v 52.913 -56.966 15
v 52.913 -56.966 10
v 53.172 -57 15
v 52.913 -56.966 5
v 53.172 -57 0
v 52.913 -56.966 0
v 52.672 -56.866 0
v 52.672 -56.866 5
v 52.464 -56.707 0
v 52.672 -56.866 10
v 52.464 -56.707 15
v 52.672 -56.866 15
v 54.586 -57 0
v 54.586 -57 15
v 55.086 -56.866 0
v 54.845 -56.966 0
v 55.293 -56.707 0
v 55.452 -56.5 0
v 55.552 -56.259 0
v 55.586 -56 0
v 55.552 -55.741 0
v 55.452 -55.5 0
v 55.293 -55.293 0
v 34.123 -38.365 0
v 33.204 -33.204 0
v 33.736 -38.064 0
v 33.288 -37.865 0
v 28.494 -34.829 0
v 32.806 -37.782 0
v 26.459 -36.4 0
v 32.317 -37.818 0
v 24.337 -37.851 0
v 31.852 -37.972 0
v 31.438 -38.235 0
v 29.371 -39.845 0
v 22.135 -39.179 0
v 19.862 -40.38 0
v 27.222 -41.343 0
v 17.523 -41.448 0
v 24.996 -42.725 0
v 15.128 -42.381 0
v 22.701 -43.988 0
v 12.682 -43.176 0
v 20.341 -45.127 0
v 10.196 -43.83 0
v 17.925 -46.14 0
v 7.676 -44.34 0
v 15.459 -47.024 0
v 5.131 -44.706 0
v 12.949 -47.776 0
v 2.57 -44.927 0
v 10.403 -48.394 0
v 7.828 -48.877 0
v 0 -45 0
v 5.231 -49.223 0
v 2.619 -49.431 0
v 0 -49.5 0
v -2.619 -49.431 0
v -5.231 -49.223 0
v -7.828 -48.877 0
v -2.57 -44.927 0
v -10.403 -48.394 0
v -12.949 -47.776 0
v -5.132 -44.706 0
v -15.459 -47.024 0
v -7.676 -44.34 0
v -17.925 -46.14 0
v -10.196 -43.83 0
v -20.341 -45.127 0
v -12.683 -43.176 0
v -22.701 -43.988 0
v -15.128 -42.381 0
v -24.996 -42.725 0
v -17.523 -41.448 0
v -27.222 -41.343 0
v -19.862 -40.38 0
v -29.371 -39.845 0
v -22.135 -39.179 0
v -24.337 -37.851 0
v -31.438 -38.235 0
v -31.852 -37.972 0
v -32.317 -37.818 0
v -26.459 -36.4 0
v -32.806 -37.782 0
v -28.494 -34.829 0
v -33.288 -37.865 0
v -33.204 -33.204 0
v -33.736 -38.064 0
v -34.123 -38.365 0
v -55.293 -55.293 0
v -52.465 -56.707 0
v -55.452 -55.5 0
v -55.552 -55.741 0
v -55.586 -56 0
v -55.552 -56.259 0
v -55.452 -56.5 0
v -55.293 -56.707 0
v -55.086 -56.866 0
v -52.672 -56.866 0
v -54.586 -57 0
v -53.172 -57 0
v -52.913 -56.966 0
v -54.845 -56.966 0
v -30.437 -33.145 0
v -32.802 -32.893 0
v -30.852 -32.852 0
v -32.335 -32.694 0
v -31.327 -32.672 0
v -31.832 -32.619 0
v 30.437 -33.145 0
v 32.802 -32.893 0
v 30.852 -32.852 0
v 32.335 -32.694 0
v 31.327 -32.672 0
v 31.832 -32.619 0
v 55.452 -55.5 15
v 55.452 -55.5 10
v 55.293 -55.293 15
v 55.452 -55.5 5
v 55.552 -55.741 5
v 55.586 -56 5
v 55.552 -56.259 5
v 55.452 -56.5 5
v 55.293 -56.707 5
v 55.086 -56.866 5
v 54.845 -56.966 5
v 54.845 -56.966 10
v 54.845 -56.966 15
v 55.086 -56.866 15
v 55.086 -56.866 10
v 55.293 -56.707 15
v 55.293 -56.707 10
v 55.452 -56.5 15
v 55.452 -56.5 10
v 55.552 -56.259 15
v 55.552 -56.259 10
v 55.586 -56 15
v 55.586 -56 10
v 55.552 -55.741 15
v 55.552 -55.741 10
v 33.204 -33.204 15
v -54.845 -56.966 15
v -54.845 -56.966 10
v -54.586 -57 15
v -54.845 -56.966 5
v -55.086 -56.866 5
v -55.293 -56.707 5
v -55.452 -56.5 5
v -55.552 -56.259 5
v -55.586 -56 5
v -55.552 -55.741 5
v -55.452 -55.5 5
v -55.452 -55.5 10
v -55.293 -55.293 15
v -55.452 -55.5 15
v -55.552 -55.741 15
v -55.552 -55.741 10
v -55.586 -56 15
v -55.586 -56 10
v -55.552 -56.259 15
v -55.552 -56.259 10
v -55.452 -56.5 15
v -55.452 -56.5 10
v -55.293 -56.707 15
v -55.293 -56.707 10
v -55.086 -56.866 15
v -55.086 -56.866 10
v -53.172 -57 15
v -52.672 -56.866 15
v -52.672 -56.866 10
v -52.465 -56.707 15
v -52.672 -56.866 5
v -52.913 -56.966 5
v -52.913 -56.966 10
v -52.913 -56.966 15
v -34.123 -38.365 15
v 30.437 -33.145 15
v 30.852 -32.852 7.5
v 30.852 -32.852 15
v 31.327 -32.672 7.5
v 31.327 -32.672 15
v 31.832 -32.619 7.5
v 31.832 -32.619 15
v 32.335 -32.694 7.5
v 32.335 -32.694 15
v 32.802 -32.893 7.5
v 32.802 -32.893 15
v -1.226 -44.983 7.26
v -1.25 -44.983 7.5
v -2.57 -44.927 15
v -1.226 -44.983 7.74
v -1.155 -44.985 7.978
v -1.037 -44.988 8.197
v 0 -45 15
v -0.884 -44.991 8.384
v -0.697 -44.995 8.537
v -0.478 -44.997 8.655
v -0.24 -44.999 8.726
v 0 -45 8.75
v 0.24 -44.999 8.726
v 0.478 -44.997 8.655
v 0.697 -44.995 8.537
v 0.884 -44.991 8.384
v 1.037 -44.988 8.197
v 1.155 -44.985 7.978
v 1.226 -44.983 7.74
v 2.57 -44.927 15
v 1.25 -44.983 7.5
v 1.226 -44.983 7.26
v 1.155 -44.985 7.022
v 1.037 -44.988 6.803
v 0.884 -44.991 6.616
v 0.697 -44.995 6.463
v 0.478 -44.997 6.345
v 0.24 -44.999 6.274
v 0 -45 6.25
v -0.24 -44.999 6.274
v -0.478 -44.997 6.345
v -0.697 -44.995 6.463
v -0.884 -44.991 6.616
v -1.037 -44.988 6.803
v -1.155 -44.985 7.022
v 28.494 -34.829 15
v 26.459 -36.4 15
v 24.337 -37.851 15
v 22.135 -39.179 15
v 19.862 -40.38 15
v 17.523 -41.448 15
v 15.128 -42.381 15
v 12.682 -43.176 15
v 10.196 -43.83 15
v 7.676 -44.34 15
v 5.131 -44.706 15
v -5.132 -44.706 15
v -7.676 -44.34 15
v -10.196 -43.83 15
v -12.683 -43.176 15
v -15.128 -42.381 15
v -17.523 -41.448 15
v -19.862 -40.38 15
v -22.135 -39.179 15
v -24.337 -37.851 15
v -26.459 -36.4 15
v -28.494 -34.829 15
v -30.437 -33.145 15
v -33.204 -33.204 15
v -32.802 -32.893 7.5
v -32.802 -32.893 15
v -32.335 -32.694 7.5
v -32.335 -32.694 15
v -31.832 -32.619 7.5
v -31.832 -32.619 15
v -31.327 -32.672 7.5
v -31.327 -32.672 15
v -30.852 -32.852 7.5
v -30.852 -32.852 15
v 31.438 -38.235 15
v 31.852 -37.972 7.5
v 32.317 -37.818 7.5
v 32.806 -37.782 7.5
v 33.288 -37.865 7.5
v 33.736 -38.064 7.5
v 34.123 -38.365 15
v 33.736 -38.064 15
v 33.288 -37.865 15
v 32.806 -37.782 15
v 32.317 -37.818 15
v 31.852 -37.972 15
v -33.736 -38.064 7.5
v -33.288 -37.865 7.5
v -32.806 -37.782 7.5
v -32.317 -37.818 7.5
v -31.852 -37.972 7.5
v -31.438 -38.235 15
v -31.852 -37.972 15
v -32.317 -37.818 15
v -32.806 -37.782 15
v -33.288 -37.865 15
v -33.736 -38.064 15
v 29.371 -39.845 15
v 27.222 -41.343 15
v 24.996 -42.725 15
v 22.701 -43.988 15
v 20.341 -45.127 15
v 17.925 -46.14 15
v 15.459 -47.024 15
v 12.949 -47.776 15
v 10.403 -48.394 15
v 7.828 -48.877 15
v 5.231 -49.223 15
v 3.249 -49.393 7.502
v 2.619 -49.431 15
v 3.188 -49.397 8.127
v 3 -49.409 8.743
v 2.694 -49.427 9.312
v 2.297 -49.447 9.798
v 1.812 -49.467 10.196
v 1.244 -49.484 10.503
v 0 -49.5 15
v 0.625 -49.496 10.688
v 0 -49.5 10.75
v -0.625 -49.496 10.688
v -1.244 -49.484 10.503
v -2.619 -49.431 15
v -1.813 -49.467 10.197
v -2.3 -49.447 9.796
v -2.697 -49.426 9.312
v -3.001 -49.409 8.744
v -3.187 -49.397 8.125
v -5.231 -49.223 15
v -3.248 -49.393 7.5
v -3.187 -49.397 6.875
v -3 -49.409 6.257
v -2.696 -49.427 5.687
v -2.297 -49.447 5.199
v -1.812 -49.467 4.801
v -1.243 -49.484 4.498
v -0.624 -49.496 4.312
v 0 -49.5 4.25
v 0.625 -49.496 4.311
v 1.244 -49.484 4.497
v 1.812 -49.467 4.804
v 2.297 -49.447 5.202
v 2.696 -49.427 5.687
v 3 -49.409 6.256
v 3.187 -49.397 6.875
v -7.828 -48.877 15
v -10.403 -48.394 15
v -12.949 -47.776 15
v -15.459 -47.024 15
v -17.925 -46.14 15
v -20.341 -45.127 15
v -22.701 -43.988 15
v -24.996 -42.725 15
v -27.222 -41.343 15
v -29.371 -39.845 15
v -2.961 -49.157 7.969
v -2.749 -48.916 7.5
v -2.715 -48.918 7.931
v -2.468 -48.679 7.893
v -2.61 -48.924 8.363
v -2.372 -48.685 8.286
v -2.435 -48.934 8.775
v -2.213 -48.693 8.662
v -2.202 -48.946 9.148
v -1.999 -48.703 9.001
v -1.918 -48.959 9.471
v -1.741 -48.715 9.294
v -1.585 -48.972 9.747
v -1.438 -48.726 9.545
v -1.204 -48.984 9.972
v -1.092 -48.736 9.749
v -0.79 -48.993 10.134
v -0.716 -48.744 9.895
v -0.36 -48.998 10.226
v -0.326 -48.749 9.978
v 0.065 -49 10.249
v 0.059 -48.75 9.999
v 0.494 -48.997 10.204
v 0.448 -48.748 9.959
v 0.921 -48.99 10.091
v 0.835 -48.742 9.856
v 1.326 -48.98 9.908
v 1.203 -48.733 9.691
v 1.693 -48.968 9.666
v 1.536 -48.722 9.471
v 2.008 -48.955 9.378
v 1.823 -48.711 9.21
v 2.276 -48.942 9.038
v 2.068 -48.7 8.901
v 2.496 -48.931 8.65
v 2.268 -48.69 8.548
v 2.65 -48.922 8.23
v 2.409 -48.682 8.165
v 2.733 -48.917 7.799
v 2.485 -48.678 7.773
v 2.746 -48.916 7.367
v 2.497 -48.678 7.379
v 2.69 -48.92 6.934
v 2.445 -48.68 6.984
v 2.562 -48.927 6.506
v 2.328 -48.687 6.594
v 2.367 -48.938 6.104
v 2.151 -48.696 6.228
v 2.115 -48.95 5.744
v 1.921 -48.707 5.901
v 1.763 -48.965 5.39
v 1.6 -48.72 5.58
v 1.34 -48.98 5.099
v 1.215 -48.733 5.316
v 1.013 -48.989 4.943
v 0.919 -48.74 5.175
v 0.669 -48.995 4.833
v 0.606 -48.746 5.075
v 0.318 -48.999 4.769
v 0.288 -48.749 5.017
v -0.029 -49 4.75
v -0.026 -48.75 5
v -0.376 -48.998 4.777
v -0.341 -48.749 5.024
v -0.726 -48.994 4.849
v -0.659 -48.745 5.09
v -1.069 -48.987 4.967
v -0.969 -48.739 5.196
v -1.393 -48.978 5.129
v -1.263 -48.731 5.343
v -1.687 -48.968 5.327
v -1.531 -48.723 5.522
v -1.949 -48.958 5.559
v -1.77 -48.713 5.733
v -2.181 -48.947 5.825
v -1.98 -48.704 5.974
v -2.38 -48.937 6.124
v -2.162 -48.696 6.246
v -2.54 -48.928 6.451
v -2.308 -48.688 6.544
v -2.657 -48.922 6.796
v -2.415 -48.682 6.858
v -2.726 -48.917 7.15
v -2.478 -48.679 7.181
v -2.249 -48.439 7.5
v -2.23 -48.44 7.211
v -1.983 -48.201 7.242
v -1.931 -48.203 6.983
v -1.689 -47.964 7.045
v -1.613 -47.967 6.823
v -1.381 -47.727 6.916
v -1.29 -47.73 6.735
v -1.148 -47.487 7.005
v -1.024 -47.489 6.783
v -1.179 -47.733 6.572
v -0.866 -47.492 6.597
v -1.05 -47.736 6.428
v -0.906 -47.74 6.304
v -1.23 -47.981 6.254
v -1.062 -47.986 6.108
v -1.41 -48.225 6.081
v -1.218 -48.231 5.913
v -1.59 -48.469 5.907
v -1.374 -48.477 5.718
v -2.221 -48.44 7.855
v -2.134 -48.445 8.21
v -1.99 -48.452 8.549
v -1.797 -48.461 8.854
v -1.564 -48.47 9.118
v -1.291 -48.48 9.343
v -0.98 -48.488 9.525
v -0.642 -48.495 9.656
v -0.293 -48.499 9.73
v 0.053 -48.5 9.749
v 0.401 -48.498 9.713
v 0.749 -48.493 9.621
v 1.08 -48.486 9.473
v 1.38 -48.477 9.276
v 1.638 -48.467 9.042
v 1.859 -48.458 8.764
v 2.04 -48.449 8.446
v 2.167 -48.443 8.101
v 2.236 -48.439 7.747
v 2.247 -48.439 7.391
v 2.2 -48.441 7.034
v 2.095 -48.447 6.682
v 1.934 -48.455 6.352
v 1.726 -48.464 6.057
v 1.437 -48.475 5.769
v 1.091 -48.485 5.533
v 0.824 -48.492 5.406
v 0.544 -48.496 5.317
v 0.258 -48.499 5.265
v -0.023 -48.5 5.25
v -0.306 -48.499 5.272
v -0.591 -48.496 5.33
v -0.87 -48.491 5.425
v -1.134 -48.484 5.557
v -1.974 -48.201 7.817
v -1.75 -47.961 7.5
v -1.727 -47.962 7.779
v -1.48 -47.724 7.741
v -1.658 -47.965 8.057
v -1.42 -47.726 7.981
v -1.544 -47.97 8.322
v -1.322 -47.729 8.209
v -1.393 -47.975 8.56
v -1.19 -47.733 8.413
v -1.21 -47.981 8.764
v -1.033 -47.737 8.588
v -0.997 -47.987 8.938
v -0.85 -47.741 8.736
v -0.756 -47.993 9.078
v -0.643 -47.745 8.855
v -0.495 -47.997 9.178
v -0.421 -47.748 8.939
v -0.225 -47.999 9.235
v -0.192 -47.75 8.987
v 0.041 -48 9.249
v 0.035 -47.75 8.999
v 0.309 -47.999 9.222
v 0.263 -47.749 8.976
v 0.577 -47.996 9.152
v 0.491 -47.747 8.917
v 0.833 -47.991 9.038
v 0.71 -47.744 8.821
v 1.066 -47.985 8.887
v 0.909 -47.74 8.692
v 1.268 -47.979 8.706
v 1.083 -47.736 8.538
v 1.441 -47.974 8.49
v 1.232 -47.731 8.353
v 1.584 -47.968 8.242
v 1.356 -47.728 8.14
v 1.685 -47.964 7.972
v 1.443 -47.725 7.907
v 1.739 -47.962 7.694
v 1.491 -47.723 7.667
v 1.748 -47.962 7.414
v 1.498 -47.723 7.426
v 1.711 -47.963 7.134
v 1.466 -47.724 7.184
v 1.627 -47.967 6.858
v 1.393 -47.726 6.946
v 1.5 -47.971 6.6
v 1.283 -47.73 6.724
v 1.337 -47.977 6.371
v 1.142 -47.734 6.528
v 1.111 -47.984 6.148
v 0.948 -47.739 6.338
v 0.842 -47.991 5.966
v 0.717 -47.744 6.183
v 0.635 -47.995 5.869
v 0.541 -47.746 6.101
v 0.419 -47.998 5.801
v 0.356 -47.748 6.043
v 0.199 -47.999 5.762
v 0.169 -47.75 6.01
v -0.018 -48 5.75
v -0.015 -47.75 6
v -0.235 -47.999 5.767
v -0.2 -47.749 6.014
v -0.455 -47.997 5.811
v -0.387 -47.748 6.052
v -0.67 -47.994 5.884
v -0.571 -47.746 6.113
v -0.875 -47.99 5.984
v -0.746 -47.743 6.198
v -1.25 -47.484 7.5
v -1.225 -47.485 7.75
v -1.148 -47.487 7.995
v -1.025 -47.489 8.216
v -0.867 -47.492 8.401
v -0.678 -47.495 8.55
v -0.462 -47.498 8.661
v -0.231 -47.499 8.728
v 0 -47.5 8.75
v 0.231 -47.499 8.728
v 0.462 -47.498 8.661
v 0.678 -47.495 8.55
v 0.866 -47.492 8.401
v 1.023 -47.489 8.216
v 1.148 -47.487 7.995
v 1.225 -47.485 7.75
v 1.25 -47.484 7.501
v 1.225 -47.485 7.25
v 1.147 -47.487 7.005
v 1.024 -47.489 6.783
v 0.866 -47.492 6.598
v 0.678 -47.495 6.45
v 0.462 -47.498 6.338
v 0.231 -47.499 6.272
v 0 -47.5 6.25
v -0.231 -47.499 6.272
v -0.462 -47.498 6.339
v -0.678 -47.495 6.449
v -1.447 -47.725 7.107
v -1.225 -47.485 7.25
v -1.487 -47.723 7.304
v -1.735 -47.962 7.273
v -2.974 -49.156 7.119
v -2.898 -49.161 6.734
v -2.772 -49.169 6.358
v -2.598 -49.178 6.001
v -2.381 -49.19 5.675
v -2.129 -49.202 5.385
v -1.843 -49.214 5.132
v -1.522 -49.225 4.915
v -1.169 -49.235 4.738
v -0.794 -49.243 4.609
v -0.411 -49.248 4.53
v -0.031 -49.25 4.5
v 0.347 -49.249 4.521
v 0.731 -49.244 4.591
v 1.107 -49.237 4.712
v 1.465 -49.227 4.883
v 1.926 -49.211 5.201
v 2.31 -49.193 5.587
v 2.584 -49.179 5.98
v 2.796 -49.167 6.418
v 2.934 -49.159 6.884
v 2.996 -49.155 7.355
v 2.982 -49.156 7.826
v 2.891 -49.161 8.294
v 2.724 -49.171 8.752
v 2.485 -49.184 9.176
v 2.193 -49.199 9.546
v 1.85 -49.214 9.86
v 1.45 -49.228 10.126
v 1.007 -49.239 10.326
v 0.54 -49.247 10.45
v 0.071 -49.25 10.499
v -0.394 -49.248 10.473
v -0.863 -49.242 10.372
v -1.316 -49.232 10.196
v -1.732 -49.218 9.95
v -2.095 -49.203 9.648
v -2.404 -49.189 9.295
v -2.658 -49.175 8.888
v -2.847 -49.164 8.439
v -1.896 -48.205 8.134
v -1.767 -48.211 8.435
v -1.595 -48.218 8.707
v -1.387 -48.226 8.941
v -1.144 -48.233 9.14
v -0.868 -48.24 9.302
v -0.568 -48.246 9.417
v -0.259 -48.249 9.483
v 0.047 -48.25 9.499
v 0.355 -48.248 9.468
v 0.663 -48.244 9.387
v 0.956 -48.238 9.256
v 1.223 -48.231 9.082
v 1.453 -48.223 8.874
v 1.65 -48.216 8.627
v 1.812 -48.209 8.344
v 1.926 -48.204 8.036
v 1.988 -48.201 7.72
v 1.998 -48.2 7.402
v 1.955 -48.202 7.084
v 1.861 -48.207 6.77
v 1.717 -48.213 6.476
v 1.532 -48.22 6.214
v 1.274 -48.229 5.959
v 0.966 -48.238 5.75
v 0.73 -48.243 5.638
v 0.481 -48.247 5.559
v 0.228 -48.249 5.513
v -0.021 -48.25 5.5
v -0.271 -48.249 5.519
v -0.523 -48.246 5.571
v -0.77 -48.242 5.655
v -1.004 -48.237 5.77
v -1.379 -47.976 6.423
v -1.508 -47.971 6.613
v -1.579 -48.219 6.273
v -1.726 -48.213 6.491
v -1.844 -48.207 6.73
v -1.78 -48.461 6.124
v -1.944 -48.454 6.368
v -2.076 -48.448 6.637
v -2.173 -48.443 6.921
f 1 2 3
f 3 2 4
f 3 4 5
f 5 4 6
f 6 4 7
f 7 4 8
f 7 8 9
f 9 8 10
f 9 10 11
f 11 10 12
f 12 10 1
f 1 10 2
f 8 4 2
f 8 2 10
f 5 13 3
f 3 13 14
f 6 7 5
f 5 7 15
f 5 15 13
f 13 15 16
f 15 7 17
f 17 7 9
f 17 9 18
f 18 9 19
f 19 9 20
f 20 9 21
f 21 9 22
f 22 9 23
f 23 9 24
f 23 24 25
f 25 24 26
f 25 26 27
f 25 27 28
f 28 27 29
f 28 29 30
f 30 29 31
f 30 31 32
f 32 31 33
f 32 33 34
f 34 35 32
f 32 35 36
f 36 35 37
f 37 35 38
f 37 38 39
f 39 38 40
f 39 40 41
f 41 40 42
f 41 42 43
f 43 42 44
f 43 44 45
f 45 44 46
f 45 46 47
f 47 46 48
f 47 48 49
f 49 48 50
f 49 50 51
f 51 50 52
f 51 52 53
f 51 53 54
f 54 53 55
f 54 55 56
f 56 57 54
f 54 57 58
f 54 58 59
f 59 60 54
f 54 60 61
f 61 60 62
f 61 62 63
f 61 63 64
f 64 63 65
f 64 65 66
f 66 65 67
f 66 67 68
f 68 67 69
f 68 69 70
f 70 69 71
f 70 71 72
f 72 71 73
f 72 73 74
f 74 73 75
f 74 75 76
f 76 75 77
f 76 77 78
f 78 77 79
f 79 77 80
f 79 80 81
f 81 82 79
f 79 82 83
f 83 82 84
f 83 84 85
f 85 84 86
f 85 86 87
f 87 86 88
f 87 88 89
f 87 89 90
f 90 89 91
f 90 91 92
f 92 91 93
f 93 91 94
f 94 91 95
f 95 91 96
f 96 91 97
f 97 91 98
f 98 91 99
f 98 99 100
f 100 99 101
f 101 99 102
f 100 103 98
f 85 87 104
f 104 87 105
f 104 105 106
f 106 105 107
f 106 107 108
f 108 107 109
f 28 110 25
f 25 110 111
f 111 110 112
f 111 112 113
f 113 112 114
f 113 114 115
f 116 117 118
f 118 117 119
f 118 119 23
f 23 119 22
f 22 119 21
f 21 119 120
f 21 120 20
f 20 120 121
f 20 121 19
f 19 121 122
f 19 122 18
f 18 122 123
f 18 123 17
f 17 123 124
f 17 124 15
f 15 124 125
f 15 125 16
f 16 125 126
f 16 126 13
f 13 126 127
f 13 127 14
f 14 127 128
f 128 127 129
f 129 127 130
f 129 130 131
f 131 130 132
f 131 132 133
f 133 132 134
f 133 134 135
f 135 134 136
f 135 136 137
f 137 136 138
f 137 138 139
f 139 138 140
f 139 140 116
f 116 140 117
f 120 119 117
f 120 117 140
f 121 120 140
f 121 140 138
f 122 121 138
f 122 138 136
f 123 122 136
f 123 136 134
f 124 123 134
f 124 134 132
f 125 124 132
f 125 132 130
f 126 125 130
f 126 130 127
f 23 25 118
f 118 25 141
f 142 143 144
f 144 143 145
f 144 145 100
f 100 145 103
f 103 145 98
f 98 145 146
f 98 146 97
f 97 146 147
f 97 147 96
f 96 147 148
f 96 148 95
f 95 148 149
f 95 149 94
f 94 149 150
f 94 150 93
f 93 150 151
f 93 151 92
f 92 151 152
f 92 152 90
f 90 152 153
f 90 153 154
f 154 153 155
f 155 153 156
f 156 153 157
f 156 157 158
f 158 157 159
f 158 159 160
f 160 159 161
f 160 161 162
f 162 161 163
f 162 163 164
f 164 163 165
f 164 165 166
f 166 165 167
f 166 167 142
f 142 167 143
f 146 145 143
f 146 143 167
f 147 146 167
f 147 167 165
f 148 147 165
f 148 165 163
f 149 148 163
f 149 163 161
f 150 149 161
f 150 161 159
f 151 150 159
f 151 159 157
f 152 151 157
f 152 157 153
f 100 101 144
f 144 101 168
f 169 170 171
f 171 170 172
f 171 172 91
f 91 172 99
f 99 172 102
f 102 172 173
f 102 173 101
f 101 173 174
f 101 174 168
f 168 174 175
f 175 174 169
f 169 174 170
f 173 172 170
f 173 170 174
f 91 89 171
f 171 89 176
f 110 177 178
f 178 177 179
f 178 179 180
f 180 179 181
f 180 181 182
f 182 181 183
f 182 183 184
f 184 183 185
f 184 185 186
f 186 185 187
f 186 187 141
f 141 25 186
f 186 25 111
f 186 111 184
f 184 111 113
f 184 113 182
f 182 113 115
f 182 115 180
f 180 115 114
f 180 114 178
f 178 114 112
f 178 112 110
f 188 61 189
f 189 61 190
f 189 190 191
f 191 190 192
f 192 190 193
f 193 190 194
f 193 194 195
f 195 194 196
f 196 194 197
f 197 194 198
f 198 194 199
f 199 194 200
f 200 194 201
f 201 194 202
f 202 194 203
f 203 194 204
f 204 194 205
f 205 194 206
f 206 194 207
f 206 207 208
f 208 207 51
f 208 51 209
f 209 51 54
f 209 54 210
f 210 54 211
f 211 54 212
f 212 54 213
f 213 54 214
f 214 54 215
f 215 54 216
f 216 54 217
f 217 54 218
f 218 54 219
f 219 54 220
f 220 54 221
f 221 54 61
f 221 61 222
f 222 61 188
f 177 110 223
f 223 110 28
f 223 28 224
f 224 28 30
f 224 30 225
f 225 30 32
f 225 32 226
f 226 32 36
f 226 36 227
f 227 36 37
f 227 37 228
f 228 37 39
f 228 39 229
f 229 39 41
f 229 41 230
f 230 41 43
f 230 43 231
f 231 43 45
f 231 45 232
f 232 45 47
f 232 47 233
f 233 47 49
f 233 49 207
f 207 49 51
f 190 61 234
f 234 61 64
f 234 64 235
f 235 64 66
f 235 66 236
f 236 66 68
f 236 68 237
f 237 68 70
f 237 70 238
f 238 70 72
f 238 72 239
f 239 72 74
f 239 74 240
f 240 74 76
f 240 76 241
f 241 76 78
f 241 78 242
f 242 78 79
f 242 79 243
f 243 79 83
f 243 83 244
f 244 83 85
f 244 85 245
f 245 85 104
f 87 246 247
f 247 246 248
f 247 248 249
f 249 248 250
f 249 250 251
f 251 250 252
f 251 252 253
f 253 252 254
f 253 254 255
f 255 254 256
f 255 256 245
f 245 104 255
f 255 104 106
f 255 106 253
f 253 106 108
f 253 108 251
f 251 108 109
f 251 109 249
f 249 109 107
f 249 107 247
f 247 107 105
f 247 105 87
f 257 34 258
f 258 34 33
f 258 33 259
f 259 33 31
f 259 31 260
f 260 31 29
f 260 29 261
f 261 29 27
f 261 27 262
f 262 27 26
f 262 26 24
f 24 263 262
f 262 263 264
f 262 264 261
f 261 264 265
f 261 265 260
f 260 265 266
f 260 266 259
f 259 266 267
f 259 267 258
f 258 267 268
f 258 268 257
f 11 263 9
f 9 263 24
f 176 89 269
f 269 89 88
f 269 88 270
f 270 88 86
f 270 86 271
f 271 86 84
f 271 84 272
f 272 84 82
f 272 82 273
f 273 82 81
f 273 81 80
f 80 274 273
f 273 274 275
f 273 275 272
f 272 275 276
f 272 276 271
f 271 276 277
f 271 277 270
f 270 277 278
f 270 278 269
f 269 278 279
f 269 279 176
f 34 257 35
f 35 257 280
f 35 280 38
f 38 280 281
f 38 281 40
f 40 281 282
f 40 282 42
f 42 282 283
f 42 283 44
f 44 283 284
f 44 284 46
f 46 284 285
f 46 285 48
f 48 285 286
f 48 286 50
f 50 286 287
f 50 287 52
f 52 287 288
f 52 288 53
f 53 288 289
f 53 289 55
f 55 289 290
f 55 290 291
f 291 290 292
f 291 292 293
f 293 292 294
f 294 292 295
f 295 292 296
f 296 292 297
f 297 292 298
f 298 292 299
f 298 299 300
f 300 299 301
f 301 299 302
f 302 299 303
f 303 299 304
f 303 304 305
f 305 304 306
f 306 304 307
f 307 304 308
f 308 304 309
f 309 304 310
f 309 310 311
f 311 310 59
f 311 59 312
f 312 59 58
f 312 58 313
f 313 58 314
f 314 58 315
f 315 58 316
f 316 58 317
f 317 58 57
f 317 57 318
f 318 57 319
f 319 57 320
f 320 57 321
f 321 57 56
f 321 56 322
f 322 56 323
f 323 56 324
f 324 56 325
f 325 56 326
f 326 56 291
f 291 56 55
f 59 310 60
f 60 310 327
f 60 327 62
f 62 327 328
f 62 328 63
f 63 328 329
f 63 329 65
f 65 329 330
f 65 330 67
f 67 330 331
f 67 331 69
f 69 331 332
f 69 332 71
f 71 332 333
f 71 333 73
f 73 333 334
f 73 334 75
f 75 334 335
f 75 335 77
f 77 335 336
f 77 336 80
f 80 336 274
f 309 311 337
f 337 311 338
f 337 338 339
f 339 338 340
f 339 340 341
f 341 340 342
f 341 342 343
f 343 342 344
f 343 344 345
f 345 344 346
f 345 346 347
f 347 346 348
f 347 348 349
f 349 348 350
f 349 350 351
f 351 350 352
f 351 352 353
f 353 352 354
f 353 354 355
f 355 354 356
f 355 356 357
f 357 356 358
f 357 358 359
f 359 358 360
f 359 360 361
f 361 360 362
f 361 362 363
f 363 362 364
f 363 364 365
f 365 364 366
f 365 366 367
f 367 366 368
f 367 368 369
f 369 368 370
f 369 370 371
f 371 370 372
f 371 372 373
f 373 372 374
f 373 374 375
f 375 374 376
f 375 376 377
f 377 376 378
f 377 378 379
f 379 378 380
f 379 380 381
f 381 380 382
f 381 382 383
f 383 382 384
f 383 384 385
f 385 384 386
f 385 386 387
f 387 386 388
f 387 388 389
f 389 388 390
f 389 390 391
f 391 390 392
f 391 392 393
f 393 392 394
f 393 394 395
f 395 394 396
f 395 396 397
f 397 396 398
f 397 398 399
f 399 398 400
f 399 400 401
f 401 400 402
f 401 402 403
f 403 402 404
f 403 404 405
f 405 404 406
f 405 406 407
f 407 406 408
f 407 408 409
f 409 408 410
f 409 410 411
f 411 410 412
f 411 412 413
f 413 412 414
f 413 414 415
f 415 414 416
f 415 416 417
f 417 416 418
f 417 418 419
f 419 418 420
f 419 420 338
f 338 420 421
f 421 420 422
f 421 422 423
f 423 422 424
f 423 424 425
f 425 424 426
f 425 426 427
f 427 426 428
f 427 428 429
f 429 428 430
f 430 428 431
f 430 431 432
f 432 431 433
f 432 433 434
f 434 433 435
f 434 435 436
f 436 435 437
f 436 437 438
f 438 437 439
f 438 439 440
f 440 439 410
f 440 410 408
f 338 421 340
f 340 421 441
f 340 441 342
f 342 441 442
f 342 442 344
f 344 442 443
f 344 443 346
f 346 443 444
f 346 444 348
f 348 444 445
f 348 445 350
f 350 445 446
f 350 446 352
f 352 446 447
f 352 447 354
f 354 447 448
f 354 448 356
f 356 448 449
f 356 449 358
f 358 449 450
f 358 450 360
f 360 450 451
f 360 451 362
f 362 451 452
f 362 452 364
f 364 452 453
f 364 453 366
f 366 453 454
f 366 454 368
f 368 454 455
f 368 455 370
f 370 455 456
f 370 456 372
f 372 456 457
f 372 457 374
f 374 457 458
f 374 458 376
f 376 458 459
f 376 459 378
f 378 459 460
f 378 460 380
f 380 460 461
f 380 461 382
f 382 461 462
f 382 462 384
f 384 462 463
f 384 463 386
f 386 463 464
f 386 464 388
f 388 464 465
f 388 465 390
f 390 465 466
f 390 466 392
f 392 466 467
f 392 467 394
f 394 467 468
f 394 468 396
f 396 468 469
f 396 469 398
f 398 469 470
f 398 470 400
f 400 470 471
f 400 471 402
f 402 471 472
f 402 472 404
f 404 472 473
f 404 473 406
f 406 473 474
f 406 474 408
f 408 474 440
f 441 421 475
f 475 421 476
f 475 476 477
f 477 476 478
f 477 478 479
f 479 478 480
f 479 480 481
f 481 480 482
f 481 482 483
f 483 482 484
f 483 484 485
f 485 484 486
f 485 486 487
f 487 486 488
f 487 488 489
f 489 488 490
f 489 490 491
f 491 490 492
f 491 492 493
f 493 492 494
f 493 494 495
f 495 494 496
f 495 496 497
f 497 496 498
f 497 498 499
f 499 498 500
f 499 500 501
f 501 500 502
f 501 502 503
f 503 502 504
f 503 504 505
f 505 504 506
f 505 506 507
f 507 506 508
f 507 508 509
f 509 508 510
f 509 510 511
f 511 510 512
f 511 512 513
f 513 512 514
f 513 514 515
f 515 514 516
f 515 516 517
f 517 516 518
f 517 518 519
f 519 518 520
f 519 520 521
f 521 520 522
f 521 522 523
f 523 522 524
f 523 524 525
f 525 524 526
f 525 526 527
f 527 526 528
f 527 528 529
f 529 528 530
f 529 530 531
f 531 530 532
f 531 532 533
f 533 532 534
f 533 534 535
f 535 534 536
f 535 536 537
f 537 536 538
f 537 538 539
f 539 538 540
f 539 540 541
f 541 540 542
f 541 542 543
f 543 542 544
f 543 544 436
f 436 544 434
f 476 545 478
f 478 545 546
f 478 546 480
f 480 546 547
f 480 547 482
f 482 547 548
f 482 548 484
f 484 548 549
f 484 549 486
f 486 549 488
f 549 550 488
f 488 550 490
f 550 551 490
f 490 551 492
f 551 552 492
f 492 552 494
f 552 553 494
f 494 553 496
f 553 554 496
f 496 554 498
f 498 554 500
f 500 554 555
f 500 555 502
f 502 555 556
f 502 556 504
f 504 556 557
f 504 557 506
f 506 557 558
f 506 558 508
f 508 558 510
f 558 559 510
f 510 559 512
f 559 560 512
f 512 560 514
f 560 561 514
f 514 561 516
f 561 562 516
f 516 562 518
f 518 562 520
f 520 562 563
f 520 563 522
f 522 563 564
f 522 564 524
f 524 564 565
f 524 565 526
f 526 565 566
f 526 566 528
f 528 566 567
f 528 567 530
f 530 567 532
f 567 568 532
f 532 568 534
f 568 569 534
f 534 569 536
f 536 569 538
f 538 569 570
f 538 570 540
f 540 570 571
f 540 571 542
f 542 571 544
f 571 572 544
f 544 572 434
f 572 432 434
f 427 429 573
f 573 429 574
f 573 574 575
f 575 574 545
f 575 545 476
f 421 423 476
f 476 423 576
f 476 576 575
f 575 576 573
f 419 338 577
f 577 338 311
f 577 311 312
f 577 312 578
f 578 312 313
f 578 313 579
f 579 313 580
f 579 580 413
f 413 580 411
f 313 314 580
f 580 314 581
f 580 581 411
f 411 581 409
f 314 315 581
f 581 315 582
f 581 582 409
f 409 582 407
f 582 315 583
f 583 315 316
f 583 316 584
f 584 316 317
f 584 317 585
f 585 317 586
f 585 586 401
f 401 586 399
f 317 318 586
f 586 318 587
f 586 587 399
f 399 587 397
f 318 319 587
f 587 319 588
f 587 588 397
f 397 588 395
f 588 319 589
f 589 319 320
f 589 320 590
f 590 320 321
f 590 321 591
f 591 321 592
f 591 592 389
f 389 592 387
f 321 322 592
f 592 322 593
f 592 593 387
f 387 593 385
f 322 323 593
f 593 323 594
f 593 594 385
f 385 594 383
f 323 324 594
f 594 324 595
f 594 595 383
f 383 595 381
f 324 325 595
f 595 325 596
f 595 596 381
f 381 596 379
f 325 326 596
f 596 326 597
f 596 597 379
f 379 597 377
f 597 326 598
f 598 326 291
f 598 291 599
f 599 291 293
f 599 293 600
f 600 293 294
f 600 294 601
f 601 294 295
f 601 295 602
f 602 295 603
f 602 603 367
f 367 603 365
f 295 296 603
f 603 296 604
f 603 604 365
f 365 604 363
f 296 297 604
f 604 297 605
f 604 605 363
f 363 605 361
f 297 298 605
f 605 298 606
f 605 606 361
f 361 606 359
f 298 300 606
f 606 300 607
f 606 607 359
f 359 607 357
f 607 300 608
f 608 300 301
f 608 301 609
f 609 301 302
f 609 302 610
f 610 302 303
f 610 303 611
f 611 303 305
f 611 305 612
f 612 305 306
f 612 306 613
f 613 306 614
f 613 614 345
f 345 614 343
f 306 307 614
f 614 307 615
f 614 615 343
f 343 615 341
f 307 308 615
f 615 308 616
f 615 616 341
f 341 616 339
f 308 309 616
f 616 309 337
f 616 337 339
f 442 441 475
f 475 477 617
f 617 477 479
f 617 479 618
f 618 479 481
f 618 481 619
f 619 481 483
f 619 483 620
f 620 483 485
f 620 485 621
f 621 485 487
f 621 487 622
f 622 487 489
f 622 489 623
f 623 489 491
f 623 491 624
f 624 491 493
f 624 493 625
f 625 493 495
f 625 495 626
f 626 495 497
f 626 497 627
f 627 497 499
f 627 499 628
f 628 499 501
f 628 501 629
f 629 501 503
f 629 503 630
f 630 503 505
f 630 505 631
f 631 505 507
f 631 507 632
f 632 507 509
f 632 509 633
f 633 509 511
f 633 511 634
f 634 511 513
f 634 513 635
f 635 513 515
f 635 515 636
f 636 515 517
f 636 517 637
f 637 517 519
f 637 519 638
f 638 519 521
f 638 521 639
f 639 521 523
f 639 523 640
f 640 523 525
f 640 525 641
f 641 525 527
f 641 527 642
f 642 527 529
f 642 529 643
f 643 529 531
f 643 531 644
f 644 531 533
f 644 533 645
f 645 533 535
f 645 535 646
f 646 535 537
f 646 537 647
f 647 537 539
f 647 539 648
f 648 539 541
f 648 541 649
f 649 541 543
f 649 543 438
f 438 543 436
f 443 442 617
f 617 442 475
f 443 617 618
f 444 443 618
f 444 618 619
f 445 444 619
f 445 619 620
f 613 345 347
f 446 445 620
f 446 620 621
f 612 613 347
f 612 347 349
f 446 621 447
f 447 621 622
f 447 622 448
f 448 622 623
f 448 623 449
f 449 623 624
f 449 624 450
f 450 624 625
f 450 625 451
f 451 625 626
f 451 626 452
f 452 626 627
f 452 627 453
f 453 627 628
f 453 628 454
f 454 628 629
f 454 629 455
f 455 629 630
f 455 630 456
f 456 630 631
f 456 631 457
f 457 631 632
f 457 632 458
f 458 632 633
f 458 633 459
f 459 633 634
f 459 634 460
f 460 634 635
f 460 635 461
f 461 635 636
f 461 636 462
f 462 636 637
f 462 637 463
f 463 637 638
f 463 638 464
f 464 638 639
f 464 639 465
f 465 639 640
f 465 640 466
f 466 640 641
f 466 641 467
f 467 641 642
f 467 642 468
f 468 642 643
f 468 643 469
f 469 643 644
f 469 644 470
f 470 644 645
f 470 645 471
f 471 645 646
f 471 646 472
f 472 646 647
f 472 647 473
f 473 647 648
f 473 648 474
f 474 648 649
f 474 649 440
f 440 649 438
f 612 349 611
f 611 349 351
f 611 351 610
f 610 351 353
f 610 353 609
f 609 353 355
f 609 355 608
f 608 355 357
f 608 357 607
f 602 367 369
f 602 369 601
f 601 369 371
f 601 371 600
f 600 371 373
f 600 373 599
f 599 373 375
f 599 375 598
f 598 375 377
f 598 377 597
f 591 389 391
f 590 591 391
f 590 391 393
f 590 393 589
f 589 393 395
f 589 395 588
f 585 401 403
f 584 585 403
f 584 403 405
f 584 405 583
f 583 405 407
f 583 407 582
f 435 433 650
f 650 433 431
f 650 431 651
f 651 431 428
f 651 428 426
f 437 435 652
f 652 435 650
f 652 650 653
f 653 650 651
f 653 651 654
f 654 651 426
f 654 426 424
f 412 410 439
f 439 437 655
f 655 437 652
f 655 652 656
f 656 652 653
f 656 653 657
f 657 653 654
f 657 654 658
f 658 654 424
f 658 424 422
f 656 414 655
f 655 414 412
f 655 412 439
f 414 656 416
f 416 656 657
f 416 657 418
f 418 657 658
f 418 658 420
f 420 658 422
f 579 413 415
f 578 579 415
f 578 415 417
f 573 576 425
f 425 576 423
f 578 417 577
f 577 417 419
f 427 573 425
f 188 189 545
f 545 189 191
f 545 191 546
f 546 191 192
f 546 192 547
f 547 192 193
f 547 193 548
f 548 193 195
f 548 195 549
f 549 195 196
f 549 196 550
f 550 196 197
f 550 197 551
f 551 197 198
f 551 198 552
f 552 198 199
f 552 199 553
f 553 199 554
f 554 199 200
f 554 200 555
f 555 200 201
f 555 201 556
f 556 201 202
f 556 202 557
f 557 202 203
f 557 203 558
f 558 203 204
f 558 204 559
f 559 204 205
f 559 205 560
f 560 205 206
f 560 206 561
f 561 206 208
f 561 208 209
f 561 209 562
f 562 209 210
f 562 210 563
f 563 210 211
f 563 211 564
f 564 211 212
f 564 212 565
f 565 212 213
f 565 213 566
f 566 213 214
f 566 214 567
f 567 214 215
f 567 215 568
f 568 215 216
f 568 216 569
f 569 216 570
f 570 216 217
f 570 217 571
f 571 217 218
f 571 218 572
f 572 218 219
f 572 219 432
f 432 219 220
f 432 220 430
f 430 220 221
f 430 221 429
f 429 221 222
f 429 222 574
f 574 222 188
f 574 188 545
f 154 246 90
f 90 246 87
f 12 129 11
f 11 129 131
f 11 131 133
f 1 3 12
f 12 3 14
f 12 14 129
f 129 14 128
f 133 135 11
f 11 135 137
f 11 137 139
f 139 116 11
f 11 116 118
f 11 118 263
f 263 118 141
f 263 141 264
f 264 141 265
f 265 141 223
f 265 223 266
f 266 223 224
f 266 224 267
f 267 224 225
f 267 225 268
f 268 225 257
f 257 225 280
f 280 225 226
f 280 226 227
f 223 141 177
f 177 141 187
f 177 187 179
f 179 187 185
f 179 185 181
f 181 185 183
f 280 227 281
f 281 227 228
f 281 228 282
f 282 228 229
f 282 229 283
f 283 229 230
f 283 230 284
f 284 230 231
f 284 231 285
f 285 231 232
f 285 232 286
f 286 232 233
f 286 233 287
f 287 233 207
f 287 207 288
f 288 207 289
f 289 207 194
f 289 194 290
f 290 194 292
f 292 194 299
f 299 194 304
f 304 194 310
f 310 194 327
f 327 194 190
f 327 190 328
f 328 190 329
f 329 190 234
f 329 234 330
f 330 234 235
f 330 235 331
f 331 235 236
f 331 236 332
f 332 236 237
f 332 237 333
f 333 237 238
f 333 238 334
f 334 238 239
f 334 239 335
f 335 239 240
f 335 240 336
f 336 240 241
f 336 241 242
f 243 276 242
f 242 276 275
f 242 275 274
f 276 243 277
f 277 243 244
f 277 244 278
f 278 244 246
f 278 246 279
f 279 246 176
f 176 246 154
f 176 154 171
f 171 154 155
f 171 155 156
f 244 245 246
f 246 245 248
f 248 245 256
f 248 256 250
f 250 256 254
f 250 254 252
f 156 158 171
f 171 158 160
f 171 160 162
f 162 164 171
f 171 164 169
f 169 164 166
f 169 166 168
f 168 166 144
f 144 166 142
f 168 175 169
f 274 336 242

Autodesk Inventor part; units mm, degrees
ref_plane "YZ Plane" through (0, 0, 0) normal (1, 0, 0) x (0, 1, 0)
ref_plane "XZ Plane" through (0, 0, 0) normal (0, 1, 0) x (-1, 0, 0)
ref_plane "XY Plane" through (0, 0, 0) normal (0, 0, 1) x (1, 0, 0)
sketch "Sketch1" plane through (0, 0, 0) normal (0, 0, 1) x (1, 0, 0)
  circle A0 centre (0, 0) radius 45
  line L0 (0, 0) -> (0, -60)
  line L1 (0, -60) -> (60, -60)
  line L2 (60, -60) -> (31.8198, -31.8198)
  line L3 (0, -60) -> (-60, -60)
  line L4 (-60, -60) -> (-31.8198, -31.8198)
  line L5 (29.6985, -33.9411) -> (52.7574, -57)
  line L6 (52.7574, -57) -> (0, -57)
  line L7 (-29.6985, -33.9411) -> (-52.7574, -57)
  line L8 (-52.7574, -57) -> (0, -57)
  circle A1 centre (0, 0) radius 49.5
  line L9 (-52.7574, -57) -> (-57, -57)
  line L10 (52.7574, -57) -> (57, -57)
  point P0 (0, -45)
  point P1 (32.8161, -37.0588)
  point P2 (-32.8161, -37.0588)
  dimension "d0" = 90
  dimension "d1" = 60
  dimension "d2" = 60
  dimension "d3" = 45
  dimension "d18" = 3
  dimension "d19" = 3
  dimension "d20" = 4.5
extrude "Extrusion1" add sketch "Sketch1" along normal blind 15 contours A0 L0 A1 L4 | L2 A1 L0 A0 | A1 L7 L9 L4 | L2 L10 L5 A1
sketch "Sketch7" plane through (-60, -57, 0) normal (0, -1, 0) x (1, 0, 0)
  circle A0 centre (60, 7.5) radius 3.5 projected
  circle A1 centre (60, 7.5) radius 1.25
  point P0 (60, 0)
  dimension "d31" = 2.5
extrude "Extrusion7" cut sketch "Sketch7" against normal blind 21.25 contours A1
chamfer "Chamfer1" distance 2 angle 45 1 edges at (-1.25, -49.4842, 7.5043)
fillet "Fillet1" radius 2 4 edges at (-32.8161, -37.0588, 7.5) (32.8161, -37.0588, 7.5) (-31.8198, -31.8198, 7.5) (31.8198, -31.8198, 7.5)
fillet "Fillet3" radius 1 4 edges at (-52.7574, -57, 7.5) (-57, -57, 7.5) (57, -57, 7.5) (52.7574, -57, 7.5)
properties part number "Horizontal Base_3DPrint"
